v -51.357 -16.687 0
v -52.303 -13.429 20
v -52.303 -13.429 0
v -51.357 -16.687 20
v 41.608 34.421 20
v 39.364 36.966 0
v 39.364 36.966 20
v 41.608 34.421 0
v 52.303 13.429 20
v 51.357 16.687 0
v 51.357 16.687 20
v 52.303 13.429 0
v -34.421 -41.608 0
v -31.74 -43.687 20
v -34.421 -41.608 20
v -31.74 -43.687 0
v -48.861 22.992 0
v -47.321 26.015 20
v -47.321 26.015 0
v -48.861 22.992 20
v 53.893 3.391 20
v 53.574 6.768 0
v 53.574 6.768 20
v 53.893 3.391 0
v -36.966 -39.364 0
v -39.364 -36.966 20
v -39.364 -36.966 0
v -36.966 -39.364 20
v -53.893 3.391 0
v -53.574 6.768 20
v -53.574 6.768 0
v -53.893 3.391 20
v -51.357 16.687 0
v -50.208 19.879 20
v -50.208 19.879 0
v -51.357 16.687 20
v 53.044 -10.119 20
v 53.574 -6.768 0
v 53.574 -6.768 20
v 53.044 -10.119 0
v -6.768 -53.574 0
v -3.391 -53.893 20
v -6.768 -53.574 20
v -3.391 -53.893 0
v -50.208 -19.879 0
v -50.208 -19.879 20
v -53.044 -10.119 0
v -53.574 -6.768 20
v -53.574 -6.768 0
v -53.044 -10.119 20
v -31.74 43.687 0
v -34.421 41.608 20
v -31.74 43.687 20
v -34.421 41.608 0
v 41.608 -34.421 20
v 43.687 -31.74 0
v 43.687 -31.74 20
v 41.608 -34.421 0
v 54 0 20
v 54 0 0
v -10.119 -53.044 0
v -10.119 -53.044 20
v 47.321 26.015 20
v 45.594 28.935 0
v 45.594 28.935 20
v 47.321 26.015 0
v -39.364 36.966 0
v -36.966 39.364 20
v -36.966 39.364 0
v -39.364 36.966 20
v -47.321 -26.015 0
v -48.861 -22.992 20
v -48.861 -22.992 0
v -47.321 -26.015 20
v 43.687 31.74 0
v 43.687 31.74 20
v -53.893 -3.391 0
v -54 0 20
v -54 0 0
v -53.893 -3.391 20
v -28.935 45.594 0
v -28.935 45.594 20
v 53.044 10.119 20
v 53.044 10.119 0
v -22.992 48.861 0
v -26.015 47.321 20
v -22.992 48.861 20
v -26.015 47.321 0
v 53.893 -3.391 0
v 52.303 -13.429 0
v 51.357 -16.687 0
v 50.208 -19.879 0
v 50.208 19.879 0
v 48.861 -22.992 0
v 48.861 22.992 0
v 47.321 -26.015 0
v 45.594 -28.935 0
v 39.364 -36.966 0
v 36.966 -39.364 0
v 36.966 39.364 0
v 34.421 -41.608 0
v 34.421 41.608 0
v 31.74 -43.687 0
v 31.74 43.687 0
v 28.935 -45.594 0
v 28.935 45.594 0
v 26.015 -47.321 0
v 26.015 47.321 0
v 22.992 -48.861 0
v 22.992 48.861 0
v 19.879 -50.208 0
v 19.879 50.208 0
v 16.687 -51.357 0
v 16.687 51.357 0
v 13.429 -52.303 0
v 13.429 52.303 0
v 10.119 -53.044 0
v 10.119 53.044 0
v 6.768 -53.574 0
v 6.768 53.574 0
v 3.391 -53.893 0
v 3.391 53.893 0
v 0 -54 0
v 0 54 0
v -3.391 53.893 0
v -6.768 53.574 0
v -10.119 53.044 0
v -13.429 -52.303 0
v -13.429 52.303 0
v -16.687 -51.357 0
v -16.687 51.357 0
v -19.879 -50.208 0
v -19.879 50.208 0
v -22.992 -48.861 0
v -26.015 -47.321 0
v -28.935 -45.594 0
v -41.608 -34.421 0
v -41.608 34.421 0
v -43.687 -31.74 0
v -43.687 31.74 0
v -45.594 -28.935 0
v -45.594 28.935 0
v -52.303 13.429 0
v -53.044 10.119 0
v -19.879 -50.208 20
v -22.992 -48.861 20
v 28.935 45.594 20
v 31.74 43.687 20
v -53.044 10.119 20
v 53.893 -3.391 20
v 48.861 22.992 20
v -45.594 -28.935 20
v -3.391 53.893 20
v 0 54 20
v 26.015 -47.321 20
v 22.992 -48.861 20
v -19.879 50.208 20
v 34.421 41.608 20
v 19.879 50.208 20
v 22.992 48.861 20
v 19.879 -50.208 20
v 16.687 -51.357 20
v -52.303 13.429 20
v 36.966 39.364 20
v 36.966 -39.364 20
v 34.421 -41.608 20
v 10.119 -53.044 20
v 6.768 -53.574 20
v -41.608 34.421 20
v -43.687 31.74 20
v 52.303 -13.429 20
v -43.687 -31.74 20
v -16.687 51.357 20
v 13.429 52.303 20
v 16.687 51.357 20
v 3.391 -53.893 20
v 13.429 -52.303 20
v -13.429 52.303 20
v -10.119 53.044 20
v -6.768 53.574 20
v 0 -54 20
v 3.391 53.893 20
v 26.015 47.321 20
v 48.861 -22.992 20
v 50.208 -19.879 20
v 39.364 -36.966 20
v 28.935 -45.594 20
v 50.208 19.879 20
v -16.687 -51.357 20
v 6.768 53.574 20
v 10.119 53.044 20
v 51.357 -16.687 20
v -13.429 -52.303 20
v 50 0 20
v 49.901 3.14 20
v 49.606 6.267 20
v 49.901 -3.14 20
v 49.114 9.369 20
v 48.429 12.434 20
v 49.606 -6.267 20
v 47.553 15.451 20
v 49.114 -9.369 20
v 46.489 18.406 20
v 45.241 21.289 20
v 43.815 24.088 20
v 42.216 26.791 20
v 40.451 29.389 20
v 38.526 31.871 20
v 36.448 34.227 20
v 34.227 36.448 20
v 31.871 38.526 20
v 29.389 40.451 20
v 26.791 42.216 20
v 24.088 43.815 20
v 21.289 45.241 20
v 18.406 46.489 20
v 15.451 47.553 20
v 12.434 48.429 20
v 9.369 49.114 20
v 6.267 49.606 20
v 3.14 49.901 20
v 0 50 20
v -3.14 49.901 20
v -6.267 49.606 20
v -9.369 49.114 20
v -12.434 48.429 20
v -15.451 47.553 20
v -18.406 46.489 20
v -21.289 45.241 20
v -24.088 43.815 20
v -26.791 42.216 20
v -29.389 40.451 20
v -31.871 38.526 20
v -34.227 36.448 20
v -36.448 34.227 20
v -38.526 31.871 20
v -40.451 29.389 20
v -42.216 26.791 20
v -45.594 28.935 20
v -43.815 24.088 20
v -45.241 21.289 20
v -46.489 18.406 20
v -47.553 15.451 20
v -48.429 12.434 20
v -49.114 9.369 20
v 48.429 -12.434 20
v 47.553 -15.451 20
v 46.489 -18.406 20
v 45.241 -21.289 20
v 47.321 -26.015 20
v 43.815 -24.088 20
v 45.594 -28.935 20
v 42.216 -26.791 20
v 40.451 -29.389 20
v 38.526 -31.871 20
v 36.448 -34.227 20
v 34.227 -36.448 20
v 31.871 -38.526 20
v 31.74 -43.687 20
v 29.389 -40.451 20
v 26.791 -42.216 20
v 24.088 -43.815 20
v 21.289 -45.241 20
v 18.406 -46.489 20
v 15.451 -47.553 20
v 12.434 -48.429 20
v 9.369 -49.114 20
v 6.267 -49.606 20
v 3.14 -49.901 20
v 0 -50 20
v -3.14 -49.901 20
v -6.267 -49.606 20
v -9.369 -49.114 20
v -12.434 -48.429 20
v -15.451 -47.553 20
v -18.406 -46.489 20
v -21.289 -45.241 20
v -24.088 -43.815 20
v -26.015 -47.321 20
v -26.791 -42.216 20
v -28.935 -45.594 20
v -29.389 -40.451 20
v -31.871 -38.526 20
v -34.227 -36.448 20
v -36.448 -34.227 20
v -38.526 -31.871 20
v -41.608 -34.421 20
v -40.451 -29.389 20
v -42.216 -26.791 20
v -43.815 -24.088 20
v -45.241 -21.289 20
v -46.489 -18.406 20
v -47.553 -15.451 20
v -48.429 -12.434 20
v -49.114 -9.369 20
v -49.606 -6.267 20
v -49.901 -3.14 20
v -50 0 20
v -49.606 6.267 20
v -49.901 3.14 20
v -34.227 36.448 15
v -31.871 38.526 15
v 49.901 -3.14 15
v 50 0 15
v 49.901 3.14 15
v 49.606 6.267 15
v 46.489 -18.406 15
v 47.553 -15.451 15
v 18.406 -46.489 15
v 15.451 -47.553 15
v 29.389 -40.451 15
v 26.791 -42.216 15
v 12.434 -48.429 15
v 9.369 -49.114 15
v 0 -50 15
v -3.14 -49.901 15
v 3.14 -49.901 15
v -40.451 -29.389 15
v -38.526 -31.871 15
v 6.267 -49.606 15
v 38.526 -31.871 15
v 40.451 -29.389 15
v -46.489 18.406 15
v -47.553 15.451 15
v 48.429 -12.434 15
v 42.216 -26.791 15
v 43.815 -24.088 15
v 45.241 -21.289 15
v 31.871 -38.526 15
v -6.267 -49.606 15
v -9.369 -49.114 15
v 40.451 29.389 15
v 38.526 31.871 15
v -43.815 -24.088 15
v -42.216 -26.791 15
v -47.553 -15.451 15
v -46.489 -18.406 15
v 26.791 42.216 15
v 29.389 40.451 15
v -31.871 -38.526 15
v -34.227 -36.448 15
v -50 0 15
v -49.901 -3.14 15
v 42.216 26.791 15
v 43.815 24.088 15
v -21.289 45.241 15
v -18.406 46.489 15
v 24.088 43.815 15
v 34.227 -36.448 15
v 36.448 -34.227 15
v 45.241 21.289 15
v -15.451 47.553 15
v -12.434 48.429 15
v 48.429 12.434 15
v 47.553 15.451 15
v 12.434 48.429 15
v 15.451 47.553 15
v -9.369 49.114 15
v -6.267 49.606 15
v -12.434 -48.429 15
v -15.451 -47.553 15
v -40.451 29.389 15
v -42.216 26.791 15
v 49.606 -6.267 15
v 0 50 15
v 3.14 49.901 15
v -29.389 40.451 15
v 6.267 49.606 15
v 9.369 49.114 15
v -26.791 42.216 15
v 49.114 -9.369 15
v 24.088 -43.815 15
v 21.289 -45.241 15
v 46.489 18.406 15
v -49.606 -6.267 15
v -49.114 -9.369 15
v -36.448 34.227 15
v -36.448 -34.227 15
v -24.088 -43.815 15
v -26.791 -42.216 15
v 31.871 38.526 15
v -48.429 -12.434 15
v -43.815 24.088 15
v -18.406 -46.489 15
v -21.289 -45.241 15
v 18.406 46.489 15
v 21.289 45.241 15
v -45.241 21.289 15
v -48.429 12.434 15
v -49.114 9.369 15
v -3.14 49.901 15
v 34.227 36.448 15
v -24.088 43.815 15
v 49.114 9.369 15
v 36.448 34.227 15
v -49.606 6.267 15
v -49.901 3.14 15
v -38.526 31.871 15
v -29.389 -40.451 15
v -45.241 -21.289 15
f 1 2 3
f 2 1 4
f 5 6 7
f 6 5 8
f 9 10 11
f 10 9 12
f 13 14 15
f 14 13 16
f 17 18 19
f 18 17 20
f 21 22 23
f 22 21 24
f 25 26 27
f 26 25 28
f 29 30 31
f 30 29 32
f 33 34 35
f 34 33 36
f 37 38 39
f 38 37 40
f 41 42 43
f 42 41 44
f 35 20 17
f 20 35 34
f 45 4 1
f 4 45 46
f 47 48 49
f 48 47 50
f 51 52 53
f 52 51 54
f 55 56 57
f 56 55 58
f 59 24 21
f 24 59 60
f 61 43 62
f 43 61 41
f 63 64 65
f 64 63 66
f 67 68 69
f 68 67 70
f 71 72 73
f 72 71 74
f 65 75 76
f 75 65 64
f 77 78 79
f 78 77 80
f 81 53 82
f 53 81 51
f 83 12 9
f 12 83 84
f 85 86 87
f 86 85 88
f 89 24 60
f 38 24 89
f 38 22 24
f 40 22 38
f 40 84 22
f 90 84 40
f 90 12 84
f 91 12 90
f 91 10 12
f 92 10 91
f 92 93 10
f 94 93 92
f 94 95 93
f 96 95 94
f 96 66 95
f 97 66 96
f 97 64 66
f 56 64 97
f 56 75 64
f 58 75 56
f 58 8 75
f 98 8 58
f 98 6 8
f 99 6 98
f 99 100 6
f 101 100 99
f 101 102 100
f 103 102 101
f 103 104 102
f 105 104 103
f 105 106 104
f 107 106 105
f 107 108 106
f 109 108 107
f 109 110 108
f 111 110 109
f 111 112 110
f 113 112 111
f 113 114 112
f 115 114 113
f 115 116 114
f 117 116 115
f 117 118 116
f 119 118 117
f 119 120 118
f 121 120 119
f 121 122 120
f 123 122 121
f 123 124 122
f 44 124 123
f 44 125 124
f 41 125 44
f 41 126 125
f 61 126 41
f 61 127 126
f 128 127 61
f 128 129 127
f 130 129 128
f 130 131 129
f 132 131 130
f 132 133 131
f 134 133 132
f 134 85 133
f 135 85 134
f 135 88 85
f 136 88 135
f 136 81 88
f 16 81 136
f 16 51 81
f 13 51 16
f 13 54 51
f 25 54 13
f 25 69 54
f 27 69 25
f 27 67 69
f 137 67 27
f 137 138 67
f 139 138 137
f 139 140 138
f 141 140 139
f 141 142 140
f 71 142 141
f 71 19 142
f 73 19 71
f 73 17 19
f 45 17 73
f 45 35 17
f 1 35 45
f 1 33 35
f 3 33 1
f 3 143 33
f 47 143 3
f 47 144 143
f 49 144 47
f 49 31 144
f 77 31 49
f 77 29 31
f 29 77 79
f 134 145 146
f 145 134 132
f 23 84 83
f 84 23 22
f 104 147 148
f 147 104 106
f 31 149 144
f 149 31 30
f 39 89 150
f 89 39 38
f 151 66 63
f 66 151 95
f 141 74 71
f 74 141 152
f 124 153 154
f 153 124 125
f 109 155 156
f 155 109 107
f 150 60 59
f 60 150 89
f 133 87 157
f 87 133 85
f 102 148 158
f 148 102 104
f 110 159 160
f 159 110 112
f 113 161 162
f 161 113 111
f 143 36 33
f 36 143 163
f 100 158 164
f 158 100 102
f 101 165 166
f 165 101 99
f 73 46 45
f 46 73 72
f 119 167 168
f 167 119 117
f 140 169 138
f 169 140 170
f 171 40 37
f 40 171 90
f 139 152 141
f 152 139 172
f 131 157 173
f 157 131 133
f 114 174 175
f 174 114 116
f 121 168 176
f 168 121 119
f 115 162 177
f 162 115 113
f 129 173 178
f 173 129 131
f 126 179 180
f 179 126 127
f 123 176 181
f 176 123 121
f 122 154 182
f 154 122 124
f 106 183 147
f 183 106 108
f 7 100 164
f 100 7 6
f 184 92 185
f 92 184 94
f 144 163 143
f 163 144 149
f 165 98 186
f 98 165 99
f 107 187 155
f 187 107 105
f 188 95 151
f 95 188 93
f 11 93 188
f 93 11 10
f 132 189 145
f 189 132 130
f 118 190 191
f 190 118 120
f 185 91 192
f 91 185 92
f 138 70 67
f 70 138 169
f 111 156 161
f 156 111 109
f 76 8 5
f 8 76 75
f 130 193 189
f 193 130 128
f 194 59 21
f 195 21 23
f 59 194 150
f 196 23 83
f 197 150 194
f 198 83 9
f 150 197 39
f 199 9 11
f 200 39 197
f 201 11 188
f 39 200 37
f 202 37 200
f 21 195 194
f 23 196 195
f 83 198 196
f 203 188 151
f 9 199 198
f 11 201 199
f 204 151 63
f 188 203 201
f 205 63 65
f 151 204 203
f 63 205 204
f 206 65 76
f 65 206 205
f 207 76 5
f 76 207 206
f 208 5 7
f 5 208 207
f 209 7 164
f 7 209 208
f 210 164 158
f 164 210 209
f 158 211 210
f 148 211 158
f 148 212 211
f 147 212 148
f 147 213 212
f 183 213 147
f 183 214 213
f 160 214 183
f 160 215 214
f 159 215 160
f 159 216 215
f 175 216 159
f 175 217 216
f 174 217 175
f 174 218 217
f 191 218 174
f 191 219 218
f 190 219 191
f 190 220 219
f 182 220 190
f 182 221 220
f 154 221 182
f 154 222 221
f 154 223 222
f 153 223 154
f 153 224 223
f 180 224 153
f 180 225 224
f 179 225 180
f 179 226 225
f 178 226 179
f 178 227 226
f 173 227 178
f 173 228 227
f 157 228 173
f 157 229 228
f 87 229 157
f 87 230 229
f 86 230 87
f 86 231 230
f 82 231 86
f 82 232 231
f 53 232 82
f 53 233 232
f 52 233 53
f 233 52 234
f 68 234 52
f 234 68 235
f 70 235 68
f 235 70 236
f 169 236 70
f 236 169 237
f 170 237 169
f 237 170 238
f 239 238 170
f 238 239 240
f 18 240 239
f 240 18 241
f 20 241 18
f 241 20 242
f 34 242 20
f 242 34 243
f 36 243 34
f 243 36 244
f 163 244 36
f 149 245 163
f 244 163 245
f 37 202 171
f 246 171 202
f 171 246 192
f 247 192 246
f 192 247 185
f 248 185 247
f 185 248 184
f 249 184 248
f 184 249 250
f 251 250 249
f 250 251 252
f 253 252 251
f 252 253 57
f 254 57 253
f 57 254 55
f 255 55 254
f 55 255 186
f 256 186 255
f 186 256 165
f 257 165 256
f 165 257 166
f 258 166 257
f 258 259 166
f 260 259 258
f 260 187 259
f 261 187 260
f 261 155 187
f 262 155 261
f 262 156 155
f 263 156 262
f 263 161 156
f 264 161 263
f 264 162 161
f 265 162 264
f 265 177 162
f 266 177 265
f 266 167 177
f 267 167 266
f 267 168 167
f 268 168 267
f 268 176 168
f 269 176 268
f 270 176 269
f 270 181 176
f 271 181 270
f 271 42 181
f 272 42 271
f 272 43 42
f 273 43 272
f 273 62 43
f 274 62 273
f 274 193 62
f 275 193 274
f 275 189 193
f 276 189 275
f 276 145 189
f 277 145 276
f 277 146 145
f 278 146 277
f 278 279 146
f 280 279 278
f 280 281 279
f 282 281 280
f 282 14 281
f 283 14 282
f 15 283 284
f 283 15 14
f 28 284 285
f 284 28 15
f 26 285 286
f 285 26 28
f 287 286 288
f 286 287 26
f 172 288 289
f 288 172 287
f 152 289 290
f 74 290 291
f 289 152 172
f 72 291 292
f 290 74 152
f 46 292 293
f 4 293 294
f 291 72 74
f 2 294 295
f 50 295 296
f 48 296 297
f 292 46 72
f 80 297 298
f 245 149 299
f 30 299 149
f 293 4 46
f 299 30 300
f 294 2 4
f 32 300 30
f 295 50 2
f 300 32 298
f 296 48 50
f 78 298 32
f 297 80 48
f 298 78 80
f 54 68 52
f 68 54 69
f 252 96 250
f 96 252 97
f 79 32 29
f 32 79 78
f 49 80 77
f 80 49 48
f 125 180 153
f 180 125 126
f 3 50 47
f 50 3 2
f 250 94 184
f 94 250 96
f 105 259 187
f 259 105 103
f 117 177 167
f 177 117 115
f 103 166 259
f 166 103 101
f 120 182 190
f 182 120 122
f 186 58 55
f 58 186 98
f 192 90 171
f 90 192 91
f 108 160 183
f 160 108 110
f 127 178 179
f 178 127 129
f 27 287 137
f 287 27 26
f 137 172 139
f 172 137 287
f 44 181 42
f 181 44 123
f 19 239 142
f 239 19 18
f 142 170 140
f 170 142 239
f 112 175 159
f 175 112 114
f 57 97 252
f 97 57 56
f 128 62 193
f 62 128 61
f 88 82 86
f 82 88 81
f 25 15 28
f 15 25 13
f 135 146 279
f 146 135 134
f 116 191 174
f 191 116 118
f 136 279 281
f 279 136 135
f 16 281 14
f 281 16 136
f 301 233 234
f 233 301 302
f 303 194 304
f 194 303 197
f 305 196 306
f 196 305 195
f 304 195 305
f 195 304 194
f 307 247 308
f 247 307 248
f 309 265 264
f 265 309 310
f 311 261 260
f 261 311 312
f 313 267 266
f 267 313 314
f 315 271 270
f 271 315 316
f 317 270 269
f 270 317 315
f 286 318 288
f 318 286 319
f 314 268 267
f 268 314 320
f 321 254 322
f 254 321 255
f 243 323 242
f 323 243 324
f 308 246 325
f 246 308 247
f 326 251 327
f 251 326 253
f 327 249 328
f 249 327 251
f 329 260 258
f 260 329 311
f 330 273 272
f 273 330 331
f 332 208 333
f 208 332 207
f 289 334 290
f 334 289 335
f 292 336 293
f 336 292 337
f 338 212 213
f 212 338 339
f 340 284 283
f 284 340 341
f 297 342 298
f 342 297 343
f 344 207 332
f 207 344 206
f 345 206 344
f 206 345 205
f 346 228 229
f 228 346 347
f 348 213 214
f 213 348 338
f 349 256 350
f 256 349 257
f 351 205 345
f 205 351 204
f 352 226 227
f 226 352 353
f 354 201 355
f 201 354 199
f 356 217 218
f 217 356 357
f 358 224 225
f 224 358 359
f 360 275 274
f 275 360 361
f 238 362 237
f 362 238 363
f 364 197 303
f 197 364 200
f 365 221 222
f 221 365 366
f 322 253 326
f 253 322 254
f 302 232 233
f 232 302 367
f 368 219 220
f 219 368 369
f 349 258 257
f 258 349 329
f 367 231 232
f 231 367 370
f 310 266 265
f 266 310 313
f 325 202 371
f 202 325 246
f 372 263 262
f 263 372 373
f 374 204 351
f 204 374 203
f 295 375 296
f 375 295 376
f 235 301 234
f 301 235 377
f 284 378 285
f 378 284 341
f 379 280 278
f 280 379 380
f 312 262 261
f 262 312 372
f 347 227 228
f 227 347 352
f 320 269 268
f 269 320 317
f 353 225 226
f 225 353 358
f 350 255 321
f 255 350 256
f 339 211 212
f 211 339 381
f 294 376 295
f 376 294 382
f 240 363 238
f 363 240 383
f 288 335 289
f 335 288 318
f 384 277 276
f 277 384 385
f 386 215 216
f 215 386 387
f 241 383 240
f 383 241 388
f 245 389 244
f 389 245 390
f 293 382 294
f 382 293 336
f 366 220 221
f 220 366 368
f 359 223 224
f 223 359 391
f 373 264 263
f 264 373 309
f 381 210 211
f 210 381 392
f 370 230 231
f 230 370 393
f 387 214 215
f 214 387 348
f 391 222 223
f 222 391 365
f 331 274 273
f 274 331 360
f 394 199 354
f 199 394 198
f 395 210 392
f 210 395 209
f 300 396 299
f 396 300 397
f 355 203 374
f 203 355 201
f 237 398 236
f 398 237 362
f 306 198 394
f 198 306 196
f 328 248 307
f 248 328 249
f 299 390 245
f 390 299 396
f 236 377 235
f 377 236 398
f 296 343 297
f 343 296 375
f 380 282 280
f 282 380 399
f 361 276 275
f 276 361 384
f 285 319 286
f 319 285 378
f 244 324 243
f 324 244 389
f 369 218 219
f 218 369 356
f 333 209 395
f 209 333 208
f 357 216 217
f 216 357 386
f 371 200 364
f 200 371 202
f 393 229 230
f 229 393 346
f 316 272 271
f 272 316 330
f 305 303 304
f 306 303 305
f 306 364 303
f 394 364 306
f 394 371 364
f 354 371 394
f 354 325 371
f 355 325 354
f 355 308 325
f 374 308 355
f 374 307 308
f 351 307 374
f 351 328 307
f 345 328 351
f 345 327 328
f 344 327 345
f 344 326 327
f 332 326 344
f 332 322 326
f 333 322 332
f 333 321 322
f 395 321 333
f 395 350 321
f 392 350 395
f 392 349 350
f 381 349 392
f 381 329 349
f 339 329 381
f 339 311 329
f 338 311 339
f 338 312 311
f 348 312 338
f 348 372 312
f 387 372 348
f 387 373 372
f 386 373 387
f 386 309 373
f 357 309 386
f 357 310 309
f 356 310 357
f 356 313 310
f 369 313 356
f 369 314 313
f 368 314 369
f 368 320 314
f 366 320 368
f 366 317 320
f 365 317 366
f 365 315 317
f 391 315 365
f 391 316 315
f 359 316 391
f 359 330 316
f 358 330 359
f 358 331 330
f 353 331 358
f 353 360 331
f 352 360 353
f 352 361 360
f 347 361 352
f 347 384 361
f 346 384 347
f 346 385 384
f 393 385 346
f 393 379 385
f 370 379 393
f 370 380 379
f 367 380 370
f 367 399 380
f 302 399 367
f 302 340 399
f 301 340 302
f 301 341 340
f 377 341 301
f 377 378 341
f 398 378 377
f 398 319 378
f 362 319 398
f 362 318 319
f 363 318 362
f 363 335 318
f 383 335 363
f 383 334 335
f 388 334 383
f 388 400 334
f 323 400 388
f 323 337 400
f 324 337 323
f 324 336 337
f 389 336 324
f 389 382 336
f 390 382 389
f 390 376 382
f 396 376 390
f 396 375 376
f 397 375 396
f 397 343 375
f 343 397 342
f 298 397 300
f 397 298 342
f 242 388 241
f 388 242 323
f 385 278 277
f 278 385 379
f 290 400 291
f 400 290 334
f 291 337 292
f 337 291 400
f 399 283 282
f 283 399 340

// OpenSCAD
// === SHALLOW CUP COASTER ===

base_diameter = 100;       // 4" opening diameter in mm
base_height = 15;          // Height from bottom to top of coaster body in mm
wall_height = 5;           // Height of wall extending up from base in mm
wall_thickness = 4;        // Thickness of walls in mm

// Derived parameters
outer_diameter = base_diameter + 2 * wall_thickness;
total_height = base_height + wall_height;

module coaster(
    d_base = base_diameter,
    h_base = base_height,
    h_wall = wall_height,
    t_wall = wall_thickness
) {
    outer_d = d_base + 2 * t_wall;
    total_h = h_base + h_wall;

    difference() {
        // Outer solid cylinder (full shape)
        cylinder(h = total_h, d = outer_d, center = false, $fn = 100);

        // Cut out from the top rim section only
        // Creates hollow rim walls from base_height to total_height
        translate([0, 0, h_base])
            cylinder(h = h_wall, d = d_base, center = false, $fn = 100);
    }
}

coaster();
